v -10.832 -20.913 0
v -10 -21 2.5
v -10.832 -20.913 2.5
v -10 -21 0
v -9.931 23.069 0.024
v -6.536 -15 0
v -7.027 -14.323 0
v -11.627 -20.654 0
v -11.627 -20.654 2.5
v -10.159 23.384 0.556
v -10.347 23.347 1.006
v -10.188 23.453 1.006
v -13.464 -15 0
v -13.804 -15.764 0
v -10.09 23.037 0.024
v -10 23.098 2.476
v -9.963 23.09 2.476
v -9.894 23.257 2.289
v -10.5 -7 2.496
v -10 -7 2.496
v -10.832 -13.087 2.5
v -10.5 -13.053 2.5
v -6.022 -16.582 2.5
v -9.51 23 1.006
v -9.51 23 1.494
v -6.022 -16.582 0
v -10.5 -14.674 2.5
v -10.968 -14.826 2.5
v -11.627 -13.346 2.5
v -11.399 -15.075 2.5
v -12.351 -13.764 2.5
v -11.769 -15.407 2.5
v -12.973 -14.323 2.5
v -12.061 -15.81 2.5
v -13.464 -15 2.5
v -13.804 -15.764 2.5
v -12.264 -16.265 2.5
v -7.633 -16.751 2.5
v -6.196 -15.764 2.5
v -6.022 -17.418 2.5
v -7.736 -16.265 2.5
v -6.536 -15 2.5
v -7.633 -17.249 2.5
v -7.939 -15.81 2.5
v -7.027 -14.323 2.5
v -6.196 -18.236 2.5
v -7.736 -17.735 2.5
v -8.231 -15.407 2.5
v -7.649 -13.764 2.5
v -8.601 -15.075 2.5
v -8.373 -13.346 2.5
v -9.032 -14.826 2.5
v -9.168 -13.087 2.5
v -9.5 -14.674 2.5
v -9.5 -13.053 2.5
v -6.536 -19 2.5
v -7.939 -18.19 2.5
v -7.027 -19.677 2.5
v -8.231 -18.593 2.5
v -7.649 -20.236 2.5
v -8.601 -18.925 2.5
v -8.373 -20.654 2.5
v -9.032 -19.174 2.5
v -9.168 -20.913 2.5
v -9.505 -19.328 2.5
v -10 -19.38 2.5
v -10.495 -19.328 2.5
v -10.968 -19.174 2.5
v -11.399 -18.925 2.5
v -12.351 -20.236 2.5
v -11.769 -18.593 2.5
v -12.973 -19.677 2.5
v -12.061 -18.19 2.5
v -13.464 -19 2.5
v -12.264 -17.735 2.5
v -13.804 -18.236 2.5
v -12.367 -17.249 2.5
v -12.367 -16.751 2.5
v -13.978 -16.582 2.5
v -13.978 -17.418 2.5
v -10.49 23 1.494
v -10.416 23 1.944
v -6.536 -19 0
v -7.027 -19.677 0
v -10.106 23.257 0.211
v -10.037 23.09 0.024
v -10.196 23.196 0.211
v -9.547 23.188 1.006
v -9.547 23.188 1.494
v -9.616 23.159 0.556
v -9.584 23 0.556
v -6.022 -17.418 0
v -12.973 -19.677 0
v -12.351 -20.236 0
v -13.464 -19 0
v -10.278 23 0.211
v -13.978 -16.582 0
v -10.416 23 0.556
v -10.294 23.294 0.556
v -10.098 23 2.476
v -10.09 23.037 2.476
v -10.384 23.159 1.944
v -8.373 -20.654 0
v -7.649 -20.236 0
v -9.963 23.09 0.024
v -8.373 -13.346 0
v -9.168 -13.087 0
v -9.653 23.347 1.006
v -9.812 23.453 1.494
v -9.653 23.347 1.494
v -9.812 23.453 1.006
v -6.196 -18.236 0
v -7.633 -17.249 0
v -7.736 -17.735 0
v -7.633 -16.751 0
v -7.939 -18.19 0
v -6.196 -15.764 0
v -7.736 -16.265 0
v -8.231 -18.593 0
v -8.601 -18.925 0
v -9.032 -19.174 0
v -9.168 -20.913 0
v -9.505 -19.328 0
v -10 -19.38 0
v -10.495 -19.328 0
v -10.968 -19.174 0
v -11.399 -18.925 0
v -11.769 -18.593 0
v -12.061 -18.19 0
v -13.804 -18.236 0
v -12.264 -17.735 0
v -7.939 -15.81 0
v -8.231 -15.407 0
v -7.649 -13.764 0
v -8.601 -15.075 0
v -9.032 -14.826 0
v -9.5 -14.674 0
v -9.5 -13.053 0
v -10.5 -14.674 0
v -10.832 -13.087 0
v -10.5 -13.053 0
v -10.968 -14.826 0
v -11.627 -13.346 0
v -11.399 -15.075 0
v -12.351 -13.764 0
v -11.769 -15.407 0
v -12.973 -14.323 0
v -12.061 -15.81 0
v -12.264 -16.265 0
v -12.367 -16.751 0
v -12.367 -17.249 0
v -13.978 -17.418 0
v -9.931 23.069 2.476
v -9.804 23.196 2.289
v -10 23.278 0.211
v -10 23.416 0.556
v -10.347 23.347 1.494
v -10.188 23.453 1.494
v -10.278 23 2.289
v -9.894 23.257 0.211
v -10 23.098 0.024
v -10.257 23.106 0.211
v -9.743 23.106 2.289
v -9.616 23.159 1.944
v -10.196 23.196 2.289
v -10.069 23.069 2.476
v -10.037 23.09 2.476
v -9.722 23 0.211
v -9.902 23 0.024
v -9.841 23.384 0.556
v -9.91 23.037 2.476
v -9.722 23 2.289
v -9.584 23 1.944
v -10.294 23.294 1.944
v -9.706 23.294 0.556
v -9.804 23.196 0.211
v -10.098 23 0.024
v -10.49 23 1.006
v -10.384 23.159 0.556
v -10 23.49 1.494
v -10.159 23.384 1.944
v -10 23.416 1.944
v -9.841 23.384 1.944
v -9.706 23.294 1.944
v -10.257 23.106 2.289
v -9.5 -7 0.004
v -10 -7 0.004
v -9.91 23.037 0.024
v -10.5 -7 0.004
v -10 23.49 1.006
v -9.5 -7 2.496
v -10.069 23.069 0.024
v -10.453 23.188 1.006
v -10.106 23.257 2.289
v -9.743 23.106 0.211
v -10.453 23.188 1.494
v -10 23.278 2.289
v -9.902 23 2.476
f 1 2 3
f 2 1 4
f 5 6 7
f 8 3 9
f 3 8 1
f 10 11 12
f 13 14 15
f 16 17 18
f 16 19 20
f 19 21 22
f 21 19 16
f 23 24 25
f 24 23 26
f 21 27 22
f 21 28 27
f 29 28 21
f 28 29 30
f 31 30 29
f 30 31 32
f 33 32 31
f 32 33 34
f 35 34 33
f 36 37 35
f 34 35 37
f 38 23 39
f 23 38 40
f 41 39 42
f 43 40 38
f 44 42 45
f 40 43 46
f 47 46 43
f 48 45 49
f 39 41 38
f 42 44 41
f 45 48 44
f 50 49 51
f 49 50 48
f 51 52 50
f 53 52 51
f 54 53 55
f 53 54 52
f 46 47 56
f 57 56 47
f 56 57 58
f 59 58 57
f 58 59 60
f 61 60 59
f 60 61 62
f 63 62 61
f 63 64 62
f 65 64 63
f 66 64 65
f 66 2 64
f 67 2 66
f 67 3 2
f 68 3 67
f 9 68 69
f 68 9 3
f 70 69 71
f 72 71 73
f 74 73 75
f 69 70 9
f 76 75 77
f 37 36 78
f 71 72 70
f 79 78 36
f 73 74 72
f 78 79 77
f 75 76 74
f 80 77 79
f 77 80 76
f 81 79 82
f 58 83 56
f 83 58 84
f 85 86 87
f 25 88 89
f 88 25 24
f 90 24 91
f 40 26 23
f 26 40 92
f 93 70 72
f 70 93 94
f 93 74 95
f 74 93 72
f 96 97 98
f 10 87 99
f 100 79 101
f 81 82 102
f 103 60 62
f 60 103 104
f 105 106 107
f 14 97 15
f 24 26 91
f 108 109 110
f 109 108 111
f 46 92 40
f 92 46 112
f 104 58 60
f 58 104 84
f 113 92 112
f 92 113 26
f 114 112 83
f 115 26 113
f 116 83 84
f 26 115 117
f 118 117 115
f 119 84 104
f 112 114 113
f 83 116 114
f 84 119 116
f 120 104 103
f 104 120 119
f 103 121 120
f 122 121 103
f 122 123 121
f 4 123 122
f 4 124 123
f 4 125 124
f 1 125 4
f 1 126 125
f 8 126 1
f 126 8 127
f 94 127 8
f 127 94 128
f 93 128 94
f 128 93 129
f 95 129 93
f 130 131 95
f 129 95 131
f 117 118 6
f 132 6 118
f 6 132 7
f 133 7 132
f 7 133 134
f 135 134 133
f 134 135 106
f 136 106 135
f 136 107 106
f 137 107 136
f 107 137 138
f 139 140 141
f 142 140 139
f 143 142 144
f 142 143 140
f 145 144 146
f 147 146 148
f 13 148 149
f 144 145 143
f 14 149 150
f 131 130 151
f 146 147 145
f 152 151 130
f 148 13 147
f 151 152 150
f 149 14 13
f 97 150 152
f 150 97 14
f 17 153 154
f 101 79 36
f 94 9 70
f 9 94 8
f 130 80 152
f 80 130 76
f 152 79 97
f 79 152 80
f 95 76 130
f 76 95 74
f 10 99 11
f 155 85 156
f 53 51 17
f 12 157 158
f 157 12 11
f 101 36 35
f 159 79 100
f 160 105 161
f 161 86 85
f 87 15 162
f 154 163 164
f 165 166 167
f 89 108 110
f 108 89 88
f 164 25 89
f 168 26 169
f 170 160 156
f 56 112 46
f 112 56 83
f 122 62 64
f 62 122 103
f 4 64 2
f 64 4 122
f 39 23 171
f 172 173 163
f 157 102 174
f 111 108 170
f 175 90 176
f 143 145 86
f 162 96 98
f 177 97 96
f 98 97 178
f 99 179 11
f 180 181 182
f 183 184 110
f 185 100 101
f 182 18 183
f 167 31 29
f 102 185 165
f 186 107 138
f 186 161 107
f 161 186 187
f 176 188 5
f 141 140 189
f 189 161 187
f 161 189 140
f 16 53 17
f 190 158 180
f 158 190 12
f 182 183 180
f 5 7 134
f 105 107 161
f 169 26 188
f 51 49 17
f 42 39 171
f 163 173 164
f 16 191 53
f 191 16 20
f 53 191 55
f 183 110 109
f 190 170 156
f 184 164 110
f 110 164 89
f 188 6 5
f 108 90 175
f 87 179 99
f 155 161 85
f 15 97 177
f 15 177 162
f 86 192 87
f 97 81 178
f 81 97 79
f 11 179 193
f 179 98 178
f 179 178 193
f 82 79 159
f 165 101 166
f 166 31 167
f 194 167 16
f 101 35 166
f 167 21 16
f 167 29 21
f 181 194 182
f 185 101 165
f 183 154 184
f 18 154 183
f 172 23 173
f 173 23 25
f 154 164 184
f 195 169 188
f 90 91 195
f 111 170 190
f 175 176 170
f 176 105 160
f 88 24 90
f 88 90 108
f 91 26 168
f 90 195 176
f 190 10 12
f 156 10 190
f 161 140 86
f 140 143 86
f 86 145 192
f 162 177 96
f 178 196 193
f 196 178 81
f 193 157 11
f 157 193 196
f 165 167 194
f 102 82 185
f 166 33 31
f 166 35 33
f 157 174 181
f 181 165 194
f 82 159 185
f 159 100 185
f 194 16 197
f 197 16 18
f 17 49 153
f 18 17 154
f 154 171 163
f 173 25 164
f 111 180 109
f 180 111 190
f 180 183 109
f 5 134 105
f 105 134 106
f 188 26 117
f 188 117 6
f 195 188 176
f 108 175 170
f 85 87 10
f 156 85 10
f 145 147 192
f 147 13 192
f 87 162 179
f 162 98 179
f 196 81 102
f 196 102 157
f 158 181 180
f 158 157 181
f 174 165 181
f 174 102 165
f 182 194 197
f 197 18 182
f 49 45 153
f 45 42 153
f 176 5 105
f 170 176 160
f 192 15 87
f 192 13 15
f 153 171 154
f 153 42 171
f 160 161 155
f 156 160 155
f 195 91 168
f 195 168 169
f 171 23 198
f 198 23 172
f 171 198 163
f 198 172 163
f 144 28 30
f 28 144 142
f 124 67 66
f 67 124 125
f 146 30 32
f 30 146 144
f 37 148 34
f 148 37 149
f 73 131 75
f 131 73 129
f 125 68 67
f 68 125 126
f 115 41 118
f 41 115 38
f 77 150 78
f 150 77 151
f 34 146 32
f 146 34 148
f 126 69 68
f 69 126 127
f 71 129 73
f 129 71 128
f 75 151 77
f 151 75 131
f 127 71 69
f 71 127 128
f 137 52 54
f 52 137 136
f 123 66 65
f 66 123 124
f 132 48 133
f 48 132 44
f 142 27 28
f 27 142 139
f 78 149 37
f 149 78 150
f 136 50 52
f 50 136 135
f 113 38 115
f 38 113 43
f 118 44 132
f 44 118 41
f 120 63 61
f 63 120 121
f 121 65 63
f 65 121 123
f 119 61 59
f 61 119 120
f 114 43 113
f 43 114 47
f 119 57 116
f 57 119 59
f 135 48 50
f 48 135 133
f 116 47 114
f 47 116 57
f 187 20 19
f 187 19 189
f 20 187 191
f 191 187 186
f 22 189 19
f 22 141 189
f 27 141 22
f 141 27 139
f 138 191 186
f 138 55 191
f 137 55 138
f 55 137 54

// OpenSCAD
$fs=.2;
module joiner(v=1,h=5){
	cube([7.8,2.2+(v-1)*12.1,1]);
	translate([3.4,1.1,1])cube([1,(v-1)*12.1,h]);
	for(i=[1:v])
	translate([1.1,1.1+(i-1)*12.1,1]){
		cylinder(d=2.2,h=h);
		translate([5.6,0,0])cylinder(d=2.2,h=h);
		translate([0,-.5,0])cube([5.6,1,h]);
	}
}
module band(v=1,t=1){
	t=t*2;
	translate([(22.5+t)/2,(12.1*v+t)/2,5])difference(){
		cube([22.5+t,12.1*v+t,10],center=true);
		cube([22.5,12.1*v,11],center=true);
	}
}
module tensioner(){
	translate([0,-2.6,0])cube([4.2,5.2,1]);
	translate([4.2,-1,0])cube([18.2*2,2,1]);
	translate([4.2+18.2*2,-2.6,0])cube([4.2,5.2,1]);
}
module leg()difference(){
	hull(){
		cylinder(d=8,h=2.5);
		translate([40,0,2.5/2])scale([1,1,2.5])sphere(d=1);
	}
	cylinder(d=4.76,h=6,center=true);
	translate([0,-.5,-.1])cube([10,1,3]);
}
module exleg(){
	difference(){
		hull(){
			cylinder(d=5,h=2);
			translate([50,0,0])cylinder(d=5,h=2);
			translate([60,0,0])cylinder(d=1,h=2);
		}
		cylinder(d=1,h=5,center=true);
		hull(){
			translate([5,0,0])cylinder(d=1,h=5,center=true);
			translate([50,0,0])cylinder(d=1,h=5,center=true);
		}
	}
}

v=1;
//for(i=[0:1])translate([30*i,5,0])band(v);
//for(i=[0:1])translate([10*i,-5,0])scale([1,-1,1])joiner(v);
//tensioner();
for(i=[0:0])rotate(90)translate([-17,20*i+10,0])leg();
//for(i=[0:3])rotate(90)translate([-30,10*i+10,0])exleg();
